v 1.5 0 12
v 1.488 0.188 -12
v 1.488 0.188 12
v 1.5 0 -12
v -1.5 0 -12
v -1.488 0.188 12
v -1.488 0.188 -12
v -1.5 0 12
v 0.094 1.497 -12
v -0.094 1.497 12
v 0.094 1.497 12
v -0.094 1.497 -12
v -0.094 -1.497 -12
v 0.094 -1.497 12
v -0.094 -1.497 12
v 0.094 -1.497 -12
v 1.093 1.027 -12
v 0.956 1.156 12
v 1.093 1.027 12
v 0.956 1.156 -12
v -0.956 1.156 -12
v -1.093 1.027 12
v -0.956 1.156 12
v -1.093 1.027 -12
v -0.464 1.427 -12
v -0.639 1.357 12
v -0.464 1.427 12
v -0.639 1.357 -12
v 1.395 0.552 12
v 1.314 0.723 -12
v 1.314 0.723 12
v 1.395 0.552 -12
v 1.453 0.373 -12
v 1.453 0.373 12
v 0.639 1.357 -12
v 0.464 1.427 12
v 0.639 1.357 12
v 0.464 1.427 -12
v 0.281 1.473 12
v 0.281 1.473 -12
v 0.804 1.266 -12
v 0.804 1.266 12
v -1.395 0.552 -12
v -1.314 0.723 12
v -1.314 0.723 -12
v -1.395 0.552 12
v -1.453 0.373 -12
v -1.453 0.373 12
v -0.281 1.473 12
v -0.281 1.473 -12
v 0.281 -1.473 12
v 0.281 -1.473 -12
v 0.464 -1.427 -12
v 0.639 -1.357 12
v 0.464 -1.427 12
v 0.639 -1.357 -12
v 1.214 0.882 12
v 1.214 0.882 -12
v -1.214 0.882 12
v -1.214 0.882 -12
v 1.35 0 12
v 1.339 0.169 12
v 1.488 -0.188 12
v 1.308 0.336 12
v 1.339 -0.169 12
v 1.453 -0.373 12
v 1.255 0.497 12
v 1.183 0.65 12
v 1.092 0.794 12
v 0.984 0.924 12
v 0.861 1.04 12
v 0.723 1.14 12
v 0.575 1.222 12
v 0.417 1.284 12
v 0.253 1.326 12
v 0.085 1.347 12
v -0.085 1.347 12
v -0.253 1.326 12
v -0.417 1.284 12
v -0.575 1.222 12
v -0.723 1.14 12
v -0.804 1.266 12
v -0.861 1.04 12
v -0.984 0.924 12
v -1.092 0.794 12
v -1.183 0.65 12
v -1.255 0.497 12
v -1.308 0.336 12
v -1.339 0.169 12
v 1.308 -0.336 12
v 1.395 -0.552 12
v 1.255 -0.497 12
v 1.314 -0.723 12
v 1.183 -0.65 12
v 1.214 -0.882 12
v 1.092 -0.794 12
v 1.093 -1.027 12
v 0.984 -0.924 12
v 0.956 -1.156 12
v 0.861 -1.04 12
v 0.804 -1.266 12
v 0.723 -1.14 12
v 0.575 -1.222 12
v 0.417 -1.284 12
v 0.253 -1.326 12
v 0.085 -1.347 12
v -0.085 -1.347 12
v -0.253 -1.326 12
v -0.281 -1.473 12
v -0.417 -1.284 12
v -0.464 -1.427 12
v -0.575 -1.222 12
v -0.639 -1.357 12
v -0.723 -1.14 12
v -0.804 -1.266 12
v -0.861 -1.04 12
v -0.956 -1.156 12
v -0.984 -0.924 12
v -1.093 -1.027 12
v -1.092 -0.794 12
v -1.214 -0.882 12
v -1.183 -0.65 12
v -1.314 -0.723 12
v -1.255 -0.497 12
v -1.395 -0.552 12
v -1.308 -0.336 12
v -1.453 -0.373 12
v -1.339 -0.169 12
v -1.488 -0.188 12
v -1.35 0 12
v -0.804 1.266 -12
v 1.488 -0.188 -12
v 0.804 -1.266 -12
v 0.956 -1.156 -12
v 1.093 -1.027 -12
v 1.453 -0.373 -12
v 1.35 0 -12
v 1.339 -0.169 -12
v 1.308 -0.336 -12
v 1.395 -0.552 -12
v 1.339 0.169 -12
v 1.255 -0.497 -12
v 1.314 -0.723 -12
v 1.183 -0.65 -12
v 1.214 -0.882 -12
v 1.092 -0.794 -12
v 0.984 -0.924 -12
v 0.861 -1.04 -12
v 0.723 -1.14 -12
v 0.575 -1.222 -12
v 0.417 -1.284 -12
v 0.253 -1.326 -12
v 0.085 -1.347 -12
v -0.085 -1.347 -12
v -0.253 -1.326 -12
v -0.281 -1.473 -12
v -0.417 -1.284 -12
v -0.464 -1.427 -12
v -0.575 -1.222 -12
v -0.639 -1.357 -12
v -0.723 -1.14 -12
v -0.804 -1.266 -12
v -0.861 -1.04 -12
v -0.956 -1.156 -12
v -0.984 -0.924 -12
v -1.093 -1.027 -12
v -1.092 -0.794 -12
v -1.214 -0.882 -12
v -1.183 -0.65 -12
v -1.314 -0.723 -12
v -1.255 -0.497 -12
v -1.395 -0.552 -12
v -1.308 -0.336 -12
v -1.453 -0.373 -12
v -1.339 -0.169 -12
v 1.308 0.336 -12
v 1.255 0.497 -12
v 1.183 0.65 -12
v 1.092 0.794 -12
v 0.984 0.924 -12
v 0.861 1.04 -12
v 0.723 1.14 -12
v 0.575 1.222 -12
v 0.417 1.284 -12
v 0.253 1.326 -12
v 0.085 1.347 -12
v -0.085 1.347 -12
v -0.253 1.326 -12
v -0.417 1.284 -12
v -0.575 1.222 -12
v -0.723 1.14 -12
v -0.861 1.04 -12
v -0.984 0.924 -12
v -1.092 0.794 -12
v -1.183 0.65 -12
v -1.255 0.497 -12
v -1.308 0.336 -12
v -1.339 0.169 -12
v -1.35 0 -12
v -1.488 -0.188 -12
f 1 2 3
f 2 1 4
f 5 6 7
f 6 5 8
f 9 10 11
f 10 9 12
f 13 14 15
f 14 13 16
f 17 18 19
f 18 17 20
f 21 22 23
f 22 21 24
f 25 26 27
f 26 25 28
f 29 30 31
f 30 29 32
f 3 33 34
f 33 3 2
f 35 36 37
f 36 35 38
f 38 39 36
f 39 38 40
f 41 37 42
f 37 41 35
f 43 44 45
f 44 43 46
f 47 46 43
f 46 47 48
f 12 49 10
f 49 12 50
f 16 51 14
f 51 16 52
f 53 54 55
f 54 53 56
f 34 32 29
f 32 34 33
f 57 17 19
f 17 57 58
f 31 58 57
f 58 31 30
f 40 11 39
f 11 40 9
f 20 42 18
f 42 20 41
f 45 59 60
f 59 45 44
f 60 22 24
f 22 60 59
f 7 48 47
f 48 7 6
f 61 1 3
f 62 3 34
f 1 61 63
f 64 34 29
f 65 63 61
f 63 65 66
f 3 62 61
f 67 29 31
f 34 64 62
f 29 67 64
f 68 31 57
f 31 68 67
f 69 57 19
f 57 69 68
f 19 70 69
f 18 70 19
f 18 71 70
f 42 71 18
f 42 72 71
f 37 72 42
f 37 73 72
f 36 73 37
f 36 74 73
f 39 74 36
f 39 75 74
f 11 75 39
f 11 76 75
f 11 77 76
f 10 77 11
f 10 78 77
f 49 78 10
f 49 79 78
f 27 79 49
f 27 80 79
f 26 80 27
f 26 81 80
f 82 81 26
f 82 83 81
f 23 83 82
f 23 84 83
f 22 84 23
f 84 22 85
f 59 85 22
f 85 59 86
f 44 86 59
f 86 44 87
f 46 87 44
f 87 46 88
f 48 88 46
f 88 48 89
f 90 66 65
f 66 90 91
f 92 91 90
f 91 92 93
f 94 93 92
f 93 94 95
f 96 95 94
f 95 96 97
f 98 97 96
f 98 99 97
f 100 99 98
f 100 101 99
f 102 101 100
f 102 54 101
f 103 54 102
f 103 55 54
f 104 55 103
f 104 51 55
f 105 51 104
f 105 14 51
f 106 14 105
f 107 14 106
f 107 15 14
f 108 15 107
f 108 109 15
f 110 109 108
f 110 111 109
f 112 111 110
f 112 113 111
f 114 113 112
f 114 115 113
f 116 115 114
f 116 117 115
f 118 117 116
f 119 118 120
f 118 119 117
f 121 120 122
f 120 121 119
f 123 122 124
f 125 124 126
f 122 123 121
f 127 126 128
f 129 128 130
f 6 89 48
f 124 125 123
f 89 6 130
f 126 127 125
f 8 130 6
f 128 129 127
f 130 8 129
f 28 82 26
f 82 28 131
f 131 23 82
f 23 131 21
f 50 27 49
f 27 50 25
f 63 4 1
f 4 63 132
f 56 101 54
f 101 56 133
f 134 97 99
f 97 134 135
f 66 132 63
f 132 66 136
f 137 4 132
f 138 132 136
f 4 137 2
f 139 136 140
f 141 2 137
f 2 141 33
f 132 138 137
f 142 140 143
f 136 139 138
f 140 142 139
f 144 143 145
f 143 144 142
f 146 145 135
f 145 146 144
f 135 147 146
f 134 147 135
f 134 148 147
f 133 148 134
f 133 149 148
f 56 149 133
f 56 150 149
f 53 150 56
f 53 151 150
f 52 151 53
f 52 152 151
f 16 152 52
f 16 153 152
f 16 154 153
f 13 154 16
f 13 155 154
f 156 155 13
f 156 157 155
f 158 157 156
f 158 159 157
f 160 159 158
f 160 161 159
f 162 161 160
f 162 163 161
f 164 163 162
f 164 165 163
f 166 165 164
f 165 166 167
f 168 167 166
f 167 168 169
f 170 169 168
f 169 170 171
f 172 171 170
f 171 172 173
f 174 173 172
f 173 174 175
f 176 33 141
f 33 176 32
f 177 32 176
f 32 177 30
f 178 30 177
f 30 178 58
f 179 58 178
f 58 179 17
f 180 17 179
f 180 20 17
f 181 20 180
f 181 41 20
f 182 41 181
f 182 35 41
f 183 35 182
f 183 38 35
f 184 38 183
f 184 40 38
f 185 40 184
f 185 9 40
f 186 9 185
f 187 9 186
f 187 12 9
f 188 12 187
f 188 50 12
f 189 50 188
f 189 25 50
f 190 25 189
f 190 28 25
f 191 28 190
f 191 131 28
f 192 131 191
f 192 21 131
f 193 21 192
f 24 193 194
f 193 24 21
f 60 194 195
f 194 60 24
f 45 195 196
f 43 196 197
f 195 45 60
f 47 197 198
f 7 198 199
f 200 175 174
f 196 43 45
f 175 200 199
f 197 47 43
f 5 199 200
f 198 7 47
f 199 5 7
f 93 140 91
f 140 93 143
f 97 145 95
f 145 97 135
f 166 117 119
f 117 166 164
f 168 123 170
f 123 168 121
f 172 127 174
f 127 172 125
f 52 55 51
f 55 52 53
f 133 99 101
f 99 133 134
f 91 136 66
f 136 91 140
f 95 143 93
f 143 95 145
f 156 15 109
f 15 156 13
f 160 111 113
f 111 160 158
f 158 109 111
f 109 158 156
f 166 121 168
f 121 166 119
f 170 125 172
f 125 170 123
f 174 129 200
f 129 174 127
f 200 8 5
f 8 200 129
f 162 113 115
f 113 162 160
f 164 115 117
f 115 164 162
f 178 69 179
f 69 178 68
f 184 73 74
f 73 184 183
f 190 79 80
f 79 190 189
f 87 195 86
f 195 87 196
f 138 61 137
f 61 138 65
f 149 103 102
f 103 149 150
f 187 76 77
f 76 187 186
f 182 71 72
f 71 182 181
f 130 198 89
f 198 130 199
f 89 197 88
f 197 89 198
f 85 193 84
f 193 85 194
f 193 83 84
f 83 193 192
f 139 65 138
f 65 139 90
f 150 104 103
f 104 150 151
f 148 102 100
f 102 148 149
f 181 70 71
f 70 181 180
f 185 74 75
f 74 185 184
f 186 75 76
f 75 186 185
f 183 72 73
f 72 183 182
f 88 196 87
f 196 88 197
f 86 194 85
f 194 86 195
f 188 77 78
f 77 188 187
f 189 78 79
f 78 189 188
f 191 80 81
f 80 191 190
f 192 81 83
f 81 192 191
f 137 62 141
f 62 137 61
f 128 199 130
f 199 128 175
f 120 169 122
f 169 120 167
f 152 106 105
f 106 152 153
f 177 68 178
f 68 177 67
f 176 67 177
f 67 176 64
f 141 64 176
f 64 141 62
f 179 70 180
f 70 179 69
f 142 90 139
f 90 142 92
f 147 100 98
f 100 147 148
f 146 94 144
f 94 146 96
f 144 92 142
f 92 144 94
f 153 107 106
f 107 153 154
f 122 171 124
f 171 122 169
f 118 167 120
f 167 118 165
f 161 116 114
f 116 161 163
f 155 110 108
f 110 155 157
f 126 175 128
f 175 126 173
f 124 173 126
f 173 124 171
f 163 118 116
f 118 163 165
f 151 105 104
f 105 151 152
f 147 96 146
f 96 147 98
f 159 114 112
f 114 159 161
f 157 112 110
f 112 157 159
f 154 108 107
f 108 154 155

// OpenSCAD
$fn = 50;


difference() {
	union() {
		translate(v = [0, 0, -12.0000000000]) {
			cylinder(h = 24, r = 1.5000000000);
		}
	}
	union() {
		translate(v = [0, 0, -100.0000000000]) {
			cylinder(h = 200, r = 1.3500000000);
		}
	}
}
